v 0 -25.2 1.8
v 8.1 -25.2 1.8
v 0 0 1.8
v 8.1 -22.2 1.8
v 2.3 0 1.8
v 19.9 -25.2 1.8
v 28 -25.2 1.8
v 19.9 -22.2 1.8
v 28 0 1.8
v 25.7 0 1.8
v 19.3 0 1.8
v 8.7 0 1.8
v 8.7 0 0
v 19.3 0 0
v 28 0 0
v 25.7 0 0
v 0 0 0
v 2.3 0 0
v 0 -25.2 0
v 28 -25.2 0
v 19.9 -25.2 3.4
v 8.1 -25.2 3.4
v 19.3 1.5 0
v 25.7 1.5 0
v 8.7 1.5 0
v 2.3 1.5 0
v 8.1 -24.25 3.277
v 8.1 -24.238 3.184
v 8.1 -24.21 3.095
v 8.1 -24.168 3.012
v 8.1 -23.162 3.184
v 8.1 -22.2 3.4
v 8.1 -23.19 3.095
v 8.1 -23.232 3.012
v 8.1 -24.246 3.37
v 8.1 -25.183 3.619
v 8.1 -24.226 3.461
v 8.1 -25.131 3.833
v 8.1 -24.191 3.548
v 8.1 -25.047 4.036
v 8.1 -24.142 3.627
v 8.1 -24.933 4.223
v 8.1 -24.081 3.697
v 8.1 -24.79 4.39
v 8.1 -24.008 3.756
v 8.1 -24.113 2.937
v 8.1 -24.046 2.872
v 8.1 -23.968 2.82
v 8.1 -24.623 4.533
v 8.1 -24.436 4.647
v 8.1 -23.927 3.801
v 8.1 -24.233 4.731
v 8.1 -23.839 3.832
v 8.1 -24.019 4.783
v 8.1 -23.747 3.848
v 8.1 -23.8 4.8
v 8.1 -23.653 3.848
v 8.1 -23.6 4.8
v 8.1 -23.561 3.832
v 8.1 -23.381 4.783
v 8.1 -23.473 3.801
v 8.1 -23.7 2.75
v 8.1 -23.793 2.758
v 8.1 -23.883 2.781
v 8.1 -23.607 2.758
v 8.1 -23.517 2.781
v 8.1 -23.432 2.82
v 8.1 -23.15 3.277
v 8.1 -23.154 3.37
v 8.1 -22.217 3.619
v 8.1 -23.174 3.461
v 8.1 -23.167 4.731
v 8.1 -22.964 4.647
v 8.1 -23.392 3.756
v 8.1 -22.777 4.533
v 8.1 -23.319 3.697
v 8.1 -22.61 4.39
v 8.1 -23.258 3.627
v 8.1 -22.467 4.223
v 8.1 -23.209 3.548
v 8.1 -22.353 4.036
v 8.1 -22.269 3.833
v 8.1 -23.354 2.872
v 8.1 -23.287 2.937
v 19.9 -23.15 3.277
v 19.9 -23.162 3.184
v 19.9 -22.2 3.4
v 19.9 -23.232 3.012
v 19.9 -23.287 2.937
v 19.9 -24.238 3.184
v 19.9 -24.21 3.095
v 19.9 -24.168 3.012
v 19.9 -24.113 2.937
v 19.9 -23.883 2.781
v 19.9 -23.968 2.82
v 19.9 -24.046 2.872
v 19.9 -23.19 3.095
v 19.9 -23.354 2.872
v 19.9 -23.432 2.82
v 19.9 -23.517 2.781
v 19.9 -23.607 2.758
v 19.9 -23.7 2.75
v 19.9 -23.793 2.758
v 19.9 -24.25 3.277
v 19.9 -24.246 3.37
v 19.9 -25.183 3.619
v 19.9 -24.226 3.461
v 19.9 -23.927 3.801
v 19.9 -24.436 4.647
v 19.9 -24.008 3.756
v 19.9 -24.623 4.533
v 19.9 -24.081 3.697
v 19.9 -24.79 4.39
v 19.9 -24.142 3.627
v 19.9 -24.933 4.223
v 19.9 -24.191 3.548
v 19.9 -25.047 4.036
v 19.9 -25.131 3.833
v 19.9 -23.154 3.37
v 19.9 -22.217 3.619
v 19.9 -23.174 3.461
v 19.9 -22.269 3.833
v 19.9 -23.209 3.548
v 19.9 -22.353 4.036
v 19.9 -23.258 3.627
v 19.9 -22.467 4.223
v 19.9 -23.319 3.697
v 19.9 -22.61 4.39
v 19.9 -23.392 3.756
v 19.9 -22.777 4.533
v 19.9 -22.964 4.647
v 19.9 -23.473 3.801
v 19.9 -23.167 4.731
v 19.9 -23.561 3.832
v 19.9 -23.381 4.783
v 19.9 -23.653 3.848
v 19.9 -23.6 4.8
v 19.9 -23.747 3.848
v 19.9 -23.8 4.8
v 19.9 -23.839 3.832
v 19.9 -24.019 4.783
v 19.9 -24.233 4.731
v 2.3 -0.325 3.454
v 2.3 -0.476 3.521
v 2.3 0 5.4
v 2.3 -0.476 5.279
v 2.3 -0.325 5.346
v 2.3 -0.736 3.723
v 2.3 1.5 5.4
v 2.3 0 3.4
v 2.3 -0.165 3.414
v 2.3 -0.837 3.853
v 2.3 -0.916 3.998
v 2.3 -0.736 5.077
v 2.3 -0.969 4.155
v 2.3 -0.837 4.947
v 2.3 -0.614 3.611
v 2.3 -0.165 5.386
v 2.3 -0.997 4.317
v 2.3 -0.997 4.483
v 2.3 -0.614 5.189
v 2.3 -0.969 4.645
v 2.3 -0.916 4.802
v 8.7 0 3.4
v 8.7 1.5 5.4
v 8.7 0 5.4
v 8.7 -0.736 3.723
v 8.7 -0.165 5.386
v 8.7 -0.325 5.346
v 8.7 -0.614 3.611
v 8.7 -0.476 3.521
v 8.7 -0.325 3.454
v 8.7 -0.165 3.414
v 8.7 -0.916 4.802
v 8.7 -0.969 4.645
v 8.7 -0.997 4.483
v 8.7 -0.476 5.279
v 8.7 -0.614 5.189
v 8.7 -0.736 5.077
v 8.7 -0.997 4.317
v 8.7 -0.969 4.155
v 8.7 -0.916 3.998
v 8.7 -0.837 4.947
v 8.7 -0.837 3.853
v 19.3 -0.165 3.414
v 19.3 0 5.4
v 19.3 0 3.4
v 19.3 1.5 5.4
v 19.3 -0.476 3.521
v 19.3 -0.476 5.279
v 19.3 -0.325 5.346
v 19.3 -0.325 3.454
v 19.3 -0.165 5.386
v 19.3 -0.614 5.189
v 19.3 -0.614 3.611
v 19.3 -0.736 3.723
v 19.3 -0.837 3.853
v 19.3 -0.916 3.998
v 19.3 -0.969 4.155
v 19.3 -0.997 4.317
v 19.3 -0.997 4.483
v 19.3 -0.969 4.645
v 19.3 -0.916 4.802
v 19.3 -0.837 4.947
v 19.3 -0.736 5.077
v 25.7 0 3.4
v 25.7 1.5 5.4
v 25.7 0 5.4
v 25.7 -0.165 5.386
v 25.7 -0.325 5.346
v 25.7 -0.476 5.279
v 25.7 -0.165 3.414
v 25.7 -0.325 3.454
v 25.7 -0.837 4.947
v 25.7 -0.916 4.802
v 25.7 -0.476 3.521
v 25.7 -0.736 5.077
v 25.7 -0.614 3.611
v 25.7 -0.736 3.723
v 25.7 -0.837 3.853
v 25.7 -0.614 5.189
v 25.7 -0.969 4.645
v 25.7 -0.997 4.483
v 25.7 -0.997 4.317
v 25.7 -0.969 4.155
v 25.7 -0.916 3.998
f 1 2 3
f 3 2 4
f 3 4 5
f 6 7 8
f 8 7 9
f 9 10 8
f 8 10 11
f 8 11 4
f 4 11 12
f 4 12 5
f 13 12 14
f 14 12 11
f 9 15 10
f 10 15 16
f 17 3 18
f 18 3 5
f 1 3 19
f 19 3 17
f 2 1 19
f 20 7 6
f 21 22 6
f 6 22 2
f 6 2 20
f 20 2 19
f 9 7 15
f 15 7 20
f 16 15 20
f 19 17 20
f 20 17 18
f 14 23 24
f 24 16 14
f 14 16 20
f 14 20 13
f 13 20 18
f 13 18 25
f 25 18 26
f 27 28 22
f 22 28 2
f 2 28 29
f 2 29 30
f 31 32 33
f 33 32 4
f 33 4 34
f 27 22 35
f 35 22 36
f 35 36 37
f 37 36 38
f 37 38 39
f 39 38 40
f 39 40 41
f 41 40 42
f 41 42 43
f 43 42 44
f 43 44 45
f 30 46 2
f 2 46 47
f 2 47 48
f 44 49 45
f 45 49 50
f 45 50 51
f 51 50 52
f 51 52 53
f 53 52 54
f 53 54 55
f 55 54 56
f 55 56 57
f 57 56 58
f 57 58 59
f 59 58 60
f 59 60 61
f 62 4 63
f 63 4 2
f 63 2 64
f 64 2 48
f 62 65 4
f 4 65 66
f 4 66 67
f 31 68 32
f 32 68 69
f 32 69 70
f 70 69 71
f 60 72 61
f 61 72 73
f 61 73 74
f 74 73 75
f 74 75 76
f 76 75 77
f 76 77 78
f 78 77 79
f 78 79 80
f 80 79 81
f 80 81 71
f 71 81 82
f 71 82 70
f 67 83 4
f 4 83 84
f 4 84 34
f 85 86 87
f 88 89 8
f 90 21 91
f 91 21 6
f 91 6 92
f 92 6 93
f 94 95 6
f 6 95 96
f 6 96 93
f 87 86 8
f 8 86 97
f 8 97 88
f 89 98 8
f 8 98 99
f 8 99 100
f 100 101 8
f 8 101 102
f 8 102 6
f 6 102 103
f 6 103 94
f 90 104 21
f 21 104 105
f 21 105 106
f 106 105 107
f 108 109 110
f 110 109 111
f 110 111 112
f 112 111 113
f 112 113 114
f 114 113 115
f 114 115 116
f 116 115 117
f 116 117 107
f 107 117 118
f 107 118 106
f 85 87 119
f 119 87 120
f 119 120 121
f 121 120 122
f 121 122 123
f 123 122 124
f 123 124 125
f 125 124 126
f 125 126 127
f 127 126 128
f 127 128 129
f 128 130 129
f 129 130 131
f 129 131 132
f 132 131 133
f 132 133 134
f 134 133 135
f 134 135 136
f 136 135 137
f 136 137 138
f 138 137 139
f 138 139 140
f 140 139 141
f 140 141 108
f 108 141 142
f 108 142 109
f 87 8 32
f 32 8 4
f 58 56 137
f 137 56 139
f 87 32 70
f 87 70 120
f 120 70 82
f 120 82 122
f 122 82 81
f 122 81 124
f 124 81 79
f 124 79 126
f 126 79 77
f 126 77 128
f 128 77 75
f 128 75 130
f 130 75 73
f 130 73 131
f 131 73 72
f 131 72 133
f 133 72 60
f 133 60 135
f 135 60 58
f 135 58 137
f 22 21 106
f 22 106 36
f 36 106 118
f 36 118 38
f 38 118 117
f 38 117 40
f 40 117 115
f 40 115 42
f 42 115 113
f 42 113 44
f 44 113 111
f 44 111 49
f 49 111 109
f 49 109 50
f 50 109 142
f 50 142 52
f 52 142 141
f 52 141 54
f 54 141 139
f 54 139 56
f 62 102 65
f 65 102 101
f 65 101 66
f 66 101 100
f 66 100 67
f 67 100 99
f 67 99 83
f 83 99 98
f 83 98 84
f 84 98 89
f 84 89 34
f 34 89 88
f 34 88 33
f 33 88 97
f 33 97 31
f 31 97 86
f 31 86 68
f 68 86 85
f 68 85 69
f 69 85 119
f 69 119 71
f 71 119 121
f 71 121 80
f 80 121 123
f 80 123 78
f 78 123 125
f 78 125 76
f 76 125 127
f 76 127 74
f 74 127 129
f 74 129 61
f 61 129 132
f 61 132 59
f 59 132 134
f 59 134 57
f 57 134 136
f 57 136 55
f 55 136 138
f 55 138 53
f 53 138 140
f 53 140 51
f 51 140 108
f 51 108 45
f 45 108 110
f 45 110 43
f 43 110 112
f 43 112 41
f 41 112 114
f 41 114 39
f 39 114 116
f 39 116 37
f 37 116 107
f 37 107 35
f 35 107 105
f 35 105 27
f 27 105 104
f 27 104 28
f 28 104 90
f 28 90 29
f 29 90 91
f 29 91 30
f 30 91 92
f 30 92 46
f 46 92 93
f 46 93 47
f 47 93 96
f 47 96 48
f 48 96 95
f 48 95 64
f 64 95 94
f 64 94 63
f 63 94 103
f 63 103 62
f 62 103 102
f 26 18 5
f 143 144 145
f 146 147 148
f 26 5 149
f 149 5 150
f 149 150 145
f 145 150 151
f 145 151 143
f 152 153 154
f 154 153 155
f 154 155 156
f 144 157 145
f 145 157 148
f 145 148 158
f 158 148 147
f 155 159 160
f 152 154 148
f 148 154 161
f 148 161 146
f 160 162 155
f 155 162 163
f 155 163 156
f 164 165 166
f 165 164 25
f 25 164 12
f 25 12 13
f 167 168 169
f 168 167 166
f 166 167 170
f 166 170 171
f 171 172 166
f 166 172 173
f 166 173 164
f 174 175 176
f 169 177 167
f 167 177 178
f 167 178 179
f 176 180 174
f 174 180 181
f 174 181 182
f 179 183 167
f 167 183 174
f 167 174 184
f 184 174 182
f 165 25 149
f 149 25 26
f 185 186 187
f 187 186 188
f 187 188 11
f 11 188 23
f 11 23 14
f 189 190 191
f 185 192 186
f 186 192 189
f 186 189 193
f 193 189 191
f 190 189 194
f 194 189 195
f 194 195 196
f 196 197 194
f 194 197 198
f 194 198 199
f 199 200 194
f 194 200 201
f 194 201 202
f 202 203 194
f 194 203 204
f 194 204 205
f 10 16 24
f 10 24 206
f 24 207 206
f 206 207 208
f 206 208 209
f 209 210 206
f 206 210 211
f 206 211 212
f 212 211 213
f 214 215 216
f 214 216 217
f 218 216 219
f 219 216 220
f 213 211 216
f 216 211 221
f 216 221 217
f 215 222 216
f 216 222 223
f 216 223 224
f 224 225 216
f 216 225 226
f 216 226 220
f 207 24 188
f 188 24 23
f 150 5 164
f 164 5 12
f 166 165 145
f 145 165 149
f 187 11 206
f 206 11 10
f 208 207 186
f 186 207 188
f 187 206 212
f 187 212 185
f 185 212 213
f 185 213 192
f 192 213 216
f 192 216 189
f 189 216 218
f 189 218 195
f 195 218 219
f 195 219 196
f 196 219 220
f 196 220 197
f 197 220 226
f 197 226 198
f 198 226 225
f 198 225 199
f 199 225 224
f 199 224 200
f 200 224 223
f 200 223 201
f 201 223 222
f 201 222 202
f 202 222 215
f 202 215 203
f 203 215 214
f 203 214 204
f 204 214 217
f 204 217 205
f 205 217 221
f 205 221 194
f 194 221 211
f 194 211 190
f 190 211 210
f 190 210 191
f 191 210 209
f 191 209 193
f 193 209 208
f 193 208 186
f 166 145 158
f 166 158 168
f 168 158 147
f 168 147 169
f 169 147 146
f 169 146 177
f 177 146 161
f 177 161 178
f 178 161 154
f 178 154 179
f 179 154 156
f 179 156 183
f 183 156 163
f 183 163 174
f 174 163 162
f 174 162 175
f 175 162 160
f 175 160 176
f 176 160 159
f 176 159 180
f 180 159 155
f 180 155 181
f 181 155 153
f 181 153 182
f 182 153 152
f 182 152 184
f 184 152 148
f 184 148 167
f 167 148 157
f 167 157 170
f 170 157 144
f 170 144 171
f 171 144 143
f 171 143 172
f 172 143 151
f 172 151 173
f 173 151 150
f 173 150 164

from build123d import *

# Parameters (mm, degrees)
SKETCH_1_W          = 28
SKETCH_1_H          = 25.2
EXTRUDE_1_DEPTH     = 1.8
SKETCH_2_W          = 11.8
SKETCH_2_H          = 3
EXTRUDE_2_DEPTH     = 3
FILLET_1_R          = 1.4
SKETCH_3_R          = 0.55
CUT_EXTRUDE_1_DEPTH = 20.9
SKETCH_4_W          = 6.4
SKETCH_4_H          = 1.8
EXTRUDE_3_DEPTH     = 1.5
SKETCH_5_W          = 6.4
SKETCH_5_H          = 1.5
EXTRUDE_4_DEPTH     = 3.6
SKETCH_7_R          = 1
EXTRUDE_5_DEPTH     = 6.4
SKETCH_8_R          = 1
EXTRUDE_6_DEPTH     = 6.4


with BuildPart() as part:
    # 草图1 → 凸台-拉伸1 (new body)
    with BuildSketch(Plane.XY):
        with Locations((14, -12.6)):
            Rectangle(SKETCH_1_W, SKETCH_1_H)
    extrude(amount=EXTRUDE_1_DEPTH)

    # 草图2 → 凸台-拉伸2 (add)
    with BuildSketch(Plane.XY.offset(1.8)):
        with Locations((14, -23.7)):
            Rectangle(SKETCH_2_W, SKETCH_2_H)
    extrude(amount=EXTRUDE_2_DEPTH)

    # 圆角1
    fillet_1_edges = [part.edges().sort_by_distance(p)[0] for p in [
        (14, -25.2, 4.8),
        (14, -22.2, 4.8),
    ]]
    fillet(fillet_1_edges, radius=FILLET_1_R)

    # 草图3 → 切除-拉伸1 (cut, through all)
    with BuildSketch(Plane(origin=(19.9, 0, 0), x_dir=(0, 0, -1), z_dir=(1, 0, 0))):
        with Locations((-3.3, -23.7)):
            Circle(SKETCH_3_R)
    extrude(amount=-CUT_EXTRUDE_1_DEPTH, mode=Mode.SUBTRACT)

    # 草图4 → 凸台-拉伸3 (add)
    with BuildSketch(Plane(origin=(0, 0, 0), x_dir=(1, 0, 0), z_dir=(0, 1, 0))):
        with Locations((5.5, -0.9)):
            Rectangle(SKETCH_4_W, SKETCH_4_H)
        with Locations((22.5, -0.9)):
            Rectangle(SKETCH_4_W, SKETCH_4_H)
    extrude(amount=EXTRUDE_3_DEPTH)

    # 草图5 → 凸台-拉伸4 (add)
    with BuildSketch(Plane.XY.offset(1.8)):
        with Locations((5.5, 0.75)):
            Rectangle(SKETCH_5_W, SKETCH_5_H)
        with Locations((22.5, 0.75)):
            Rectangle(SKETCH_5_W, SKETCH_5_H)
    extrude(amount=EXTRUDE_4_DEPTH)

    # 草图7 → 凸台-拉伸5 (add)
    with BuildSketch(Plane(origin=(25.7, 0, 0), x_dir=(0, 0, -1), z_dir=(1, 0, 0))):
        with Locations((-4.4, 0)):
            Circle(SKETCH_7_R)
    extrude(amount=-EXTRUDE_5_DEPTH)

    # 草图8 → 凸台-拉伸6 (add)
    with BuildSketch(Plane.ZY.offset(-2.3)):
        with Locations((4.4, 0)):
            Circle(SKETCH_8_R)
    extrude(amount=-EXTRUDE_6_DEPTH)


solid = part.part
